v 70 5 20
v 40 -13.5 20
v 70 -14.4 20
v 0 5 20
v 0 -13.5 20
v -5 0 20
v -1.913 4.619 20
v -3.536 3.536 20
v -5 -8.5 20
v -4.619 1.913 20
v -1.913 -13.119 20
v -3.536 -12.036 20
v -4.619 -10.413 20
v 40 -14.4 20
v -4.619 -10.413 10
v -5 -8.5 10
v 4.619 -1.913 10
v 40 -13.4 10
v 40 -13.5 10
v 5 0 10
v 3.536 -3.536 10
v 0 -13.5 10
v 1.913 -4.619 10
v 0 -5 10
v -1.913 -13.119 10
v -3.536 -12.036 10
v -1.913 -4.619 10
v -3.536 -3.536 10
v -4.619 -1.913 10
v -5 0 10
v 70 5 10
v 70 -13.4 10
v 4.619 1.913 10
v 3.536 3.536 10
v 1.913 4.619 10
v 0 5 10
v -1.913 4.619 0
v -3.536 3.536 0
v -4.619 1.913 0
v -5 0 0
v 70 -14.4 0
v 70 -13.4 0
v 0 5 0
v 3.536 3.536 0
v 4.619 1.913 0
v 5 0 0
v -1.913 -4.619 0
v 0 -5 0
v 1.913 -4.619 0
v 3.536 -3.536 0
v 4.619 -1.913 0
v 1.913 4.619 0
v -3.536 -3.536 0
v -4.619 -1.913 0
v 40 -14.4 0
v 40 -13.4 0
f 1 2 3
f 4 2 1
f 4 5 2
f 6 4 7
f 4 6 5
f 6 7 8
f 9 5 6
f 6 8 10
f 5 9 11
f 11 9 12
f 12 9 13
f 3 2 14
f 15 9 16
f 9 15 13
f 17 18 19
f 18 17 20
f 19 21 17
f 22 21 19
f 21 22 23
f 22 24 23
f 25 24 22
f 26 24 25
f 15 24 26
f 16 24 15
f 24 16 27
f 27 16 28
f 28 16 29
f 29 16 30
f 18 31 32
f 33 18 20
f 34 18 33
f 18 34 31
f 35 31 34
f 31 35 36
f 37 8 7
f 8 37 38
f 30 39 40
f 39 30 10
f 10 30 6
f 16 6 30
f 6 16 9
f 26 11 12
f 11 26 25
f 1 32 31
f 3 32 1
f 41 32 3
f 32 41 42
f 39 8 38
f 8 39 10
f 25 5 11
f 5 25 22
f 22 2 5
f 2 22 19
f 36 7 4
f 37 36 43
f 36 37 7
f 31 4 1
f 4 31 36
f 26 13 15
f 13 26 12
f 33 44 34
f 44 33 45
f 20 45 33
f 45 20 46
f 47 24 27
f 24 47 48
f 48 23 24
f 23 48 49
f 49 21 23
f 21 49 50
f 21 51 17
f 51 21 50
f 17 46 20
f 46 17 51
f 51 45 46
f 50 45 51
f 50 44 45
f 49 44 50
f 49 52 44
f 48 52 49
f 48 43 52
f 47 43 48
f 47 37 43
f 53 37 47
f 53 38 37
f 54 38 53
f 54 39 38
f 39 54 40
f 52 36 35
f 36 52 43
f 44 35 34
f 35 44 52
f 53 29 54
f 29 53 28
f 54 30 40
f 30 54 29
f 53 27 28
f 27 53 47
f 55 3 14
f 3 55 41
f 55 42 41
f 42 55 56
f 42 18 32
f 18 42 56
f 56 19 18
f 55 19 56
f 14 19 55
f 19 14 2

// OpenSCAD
/*
difference(){
hull(){
cylinder(d=27,h=10);
translate([-27/2+75,-4+27/2,0])
cube([10,30,10]);
}
translate([-20,12,3])
cube([100,1,20]);
translate([0,0,-5])
cylinder(d=10,h=20);
}
*/

union(){

hull(){
difference(){ 
translate([-10/2,-(27/2),10])
cube([75,27/2+10/2,10]);
    
translate([-10/2-5,-(27/2)-1,9])
cube([75,27/2+10/2+2,12]);
}


translate([0,0,10])
cylinder(d=10,h=10);
translate([0,-10+1.5,10])
cylinder(d=10,h=10);
}

cylinder(d=10,h=20);
}
translate([70,-13.5+0.1,0])
mirror([1,1,0])
cube([1,30,20]);
